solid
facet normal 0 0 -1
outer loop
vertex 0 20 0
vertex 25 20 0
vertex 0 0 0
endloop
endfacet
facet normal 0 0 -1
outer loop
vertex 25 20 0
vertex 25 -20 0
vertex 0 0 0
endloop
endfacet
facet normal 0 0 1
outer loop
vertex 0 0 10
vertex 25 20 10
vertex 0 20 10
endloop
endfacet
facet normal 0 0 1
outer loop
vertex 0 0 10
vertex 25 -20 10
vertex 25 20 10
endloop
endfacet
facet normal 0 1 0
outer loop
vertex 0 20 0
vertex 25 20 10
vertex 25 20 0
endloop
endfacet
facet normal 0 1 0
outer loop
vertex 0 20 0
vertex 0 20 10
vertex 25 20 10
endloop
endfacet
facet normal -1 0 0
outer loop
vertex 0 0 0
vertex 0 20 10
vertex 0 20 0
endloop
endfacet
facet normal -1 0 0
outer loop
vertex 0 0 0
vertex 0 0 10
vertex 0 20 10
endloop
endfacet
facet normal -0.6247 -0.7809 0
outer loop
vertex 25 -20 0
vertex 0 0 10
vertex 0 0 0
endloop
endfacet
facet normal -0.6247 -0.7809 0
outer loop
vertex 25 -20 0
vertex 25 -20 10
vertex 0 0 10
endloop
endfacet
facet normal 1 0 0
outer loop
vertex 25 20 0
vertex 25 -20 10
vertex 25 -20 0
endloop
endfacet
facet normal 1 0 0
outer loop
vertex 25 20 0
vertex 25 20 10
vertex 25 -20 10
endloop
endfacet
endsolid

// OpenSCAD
module lattice(size, height, width, depth, num_spokes, spacing) {
  linear_extrude(height = height) {
    polygon(points = [
      [0, 0],
      [width/2, -depth],
      [width/2, depth],
      [0, depth]
    ]);
  }
}

lattice(size = 50, height = 10, width = 50, depth = 20, num_spokes = 10, spacing = 5);
